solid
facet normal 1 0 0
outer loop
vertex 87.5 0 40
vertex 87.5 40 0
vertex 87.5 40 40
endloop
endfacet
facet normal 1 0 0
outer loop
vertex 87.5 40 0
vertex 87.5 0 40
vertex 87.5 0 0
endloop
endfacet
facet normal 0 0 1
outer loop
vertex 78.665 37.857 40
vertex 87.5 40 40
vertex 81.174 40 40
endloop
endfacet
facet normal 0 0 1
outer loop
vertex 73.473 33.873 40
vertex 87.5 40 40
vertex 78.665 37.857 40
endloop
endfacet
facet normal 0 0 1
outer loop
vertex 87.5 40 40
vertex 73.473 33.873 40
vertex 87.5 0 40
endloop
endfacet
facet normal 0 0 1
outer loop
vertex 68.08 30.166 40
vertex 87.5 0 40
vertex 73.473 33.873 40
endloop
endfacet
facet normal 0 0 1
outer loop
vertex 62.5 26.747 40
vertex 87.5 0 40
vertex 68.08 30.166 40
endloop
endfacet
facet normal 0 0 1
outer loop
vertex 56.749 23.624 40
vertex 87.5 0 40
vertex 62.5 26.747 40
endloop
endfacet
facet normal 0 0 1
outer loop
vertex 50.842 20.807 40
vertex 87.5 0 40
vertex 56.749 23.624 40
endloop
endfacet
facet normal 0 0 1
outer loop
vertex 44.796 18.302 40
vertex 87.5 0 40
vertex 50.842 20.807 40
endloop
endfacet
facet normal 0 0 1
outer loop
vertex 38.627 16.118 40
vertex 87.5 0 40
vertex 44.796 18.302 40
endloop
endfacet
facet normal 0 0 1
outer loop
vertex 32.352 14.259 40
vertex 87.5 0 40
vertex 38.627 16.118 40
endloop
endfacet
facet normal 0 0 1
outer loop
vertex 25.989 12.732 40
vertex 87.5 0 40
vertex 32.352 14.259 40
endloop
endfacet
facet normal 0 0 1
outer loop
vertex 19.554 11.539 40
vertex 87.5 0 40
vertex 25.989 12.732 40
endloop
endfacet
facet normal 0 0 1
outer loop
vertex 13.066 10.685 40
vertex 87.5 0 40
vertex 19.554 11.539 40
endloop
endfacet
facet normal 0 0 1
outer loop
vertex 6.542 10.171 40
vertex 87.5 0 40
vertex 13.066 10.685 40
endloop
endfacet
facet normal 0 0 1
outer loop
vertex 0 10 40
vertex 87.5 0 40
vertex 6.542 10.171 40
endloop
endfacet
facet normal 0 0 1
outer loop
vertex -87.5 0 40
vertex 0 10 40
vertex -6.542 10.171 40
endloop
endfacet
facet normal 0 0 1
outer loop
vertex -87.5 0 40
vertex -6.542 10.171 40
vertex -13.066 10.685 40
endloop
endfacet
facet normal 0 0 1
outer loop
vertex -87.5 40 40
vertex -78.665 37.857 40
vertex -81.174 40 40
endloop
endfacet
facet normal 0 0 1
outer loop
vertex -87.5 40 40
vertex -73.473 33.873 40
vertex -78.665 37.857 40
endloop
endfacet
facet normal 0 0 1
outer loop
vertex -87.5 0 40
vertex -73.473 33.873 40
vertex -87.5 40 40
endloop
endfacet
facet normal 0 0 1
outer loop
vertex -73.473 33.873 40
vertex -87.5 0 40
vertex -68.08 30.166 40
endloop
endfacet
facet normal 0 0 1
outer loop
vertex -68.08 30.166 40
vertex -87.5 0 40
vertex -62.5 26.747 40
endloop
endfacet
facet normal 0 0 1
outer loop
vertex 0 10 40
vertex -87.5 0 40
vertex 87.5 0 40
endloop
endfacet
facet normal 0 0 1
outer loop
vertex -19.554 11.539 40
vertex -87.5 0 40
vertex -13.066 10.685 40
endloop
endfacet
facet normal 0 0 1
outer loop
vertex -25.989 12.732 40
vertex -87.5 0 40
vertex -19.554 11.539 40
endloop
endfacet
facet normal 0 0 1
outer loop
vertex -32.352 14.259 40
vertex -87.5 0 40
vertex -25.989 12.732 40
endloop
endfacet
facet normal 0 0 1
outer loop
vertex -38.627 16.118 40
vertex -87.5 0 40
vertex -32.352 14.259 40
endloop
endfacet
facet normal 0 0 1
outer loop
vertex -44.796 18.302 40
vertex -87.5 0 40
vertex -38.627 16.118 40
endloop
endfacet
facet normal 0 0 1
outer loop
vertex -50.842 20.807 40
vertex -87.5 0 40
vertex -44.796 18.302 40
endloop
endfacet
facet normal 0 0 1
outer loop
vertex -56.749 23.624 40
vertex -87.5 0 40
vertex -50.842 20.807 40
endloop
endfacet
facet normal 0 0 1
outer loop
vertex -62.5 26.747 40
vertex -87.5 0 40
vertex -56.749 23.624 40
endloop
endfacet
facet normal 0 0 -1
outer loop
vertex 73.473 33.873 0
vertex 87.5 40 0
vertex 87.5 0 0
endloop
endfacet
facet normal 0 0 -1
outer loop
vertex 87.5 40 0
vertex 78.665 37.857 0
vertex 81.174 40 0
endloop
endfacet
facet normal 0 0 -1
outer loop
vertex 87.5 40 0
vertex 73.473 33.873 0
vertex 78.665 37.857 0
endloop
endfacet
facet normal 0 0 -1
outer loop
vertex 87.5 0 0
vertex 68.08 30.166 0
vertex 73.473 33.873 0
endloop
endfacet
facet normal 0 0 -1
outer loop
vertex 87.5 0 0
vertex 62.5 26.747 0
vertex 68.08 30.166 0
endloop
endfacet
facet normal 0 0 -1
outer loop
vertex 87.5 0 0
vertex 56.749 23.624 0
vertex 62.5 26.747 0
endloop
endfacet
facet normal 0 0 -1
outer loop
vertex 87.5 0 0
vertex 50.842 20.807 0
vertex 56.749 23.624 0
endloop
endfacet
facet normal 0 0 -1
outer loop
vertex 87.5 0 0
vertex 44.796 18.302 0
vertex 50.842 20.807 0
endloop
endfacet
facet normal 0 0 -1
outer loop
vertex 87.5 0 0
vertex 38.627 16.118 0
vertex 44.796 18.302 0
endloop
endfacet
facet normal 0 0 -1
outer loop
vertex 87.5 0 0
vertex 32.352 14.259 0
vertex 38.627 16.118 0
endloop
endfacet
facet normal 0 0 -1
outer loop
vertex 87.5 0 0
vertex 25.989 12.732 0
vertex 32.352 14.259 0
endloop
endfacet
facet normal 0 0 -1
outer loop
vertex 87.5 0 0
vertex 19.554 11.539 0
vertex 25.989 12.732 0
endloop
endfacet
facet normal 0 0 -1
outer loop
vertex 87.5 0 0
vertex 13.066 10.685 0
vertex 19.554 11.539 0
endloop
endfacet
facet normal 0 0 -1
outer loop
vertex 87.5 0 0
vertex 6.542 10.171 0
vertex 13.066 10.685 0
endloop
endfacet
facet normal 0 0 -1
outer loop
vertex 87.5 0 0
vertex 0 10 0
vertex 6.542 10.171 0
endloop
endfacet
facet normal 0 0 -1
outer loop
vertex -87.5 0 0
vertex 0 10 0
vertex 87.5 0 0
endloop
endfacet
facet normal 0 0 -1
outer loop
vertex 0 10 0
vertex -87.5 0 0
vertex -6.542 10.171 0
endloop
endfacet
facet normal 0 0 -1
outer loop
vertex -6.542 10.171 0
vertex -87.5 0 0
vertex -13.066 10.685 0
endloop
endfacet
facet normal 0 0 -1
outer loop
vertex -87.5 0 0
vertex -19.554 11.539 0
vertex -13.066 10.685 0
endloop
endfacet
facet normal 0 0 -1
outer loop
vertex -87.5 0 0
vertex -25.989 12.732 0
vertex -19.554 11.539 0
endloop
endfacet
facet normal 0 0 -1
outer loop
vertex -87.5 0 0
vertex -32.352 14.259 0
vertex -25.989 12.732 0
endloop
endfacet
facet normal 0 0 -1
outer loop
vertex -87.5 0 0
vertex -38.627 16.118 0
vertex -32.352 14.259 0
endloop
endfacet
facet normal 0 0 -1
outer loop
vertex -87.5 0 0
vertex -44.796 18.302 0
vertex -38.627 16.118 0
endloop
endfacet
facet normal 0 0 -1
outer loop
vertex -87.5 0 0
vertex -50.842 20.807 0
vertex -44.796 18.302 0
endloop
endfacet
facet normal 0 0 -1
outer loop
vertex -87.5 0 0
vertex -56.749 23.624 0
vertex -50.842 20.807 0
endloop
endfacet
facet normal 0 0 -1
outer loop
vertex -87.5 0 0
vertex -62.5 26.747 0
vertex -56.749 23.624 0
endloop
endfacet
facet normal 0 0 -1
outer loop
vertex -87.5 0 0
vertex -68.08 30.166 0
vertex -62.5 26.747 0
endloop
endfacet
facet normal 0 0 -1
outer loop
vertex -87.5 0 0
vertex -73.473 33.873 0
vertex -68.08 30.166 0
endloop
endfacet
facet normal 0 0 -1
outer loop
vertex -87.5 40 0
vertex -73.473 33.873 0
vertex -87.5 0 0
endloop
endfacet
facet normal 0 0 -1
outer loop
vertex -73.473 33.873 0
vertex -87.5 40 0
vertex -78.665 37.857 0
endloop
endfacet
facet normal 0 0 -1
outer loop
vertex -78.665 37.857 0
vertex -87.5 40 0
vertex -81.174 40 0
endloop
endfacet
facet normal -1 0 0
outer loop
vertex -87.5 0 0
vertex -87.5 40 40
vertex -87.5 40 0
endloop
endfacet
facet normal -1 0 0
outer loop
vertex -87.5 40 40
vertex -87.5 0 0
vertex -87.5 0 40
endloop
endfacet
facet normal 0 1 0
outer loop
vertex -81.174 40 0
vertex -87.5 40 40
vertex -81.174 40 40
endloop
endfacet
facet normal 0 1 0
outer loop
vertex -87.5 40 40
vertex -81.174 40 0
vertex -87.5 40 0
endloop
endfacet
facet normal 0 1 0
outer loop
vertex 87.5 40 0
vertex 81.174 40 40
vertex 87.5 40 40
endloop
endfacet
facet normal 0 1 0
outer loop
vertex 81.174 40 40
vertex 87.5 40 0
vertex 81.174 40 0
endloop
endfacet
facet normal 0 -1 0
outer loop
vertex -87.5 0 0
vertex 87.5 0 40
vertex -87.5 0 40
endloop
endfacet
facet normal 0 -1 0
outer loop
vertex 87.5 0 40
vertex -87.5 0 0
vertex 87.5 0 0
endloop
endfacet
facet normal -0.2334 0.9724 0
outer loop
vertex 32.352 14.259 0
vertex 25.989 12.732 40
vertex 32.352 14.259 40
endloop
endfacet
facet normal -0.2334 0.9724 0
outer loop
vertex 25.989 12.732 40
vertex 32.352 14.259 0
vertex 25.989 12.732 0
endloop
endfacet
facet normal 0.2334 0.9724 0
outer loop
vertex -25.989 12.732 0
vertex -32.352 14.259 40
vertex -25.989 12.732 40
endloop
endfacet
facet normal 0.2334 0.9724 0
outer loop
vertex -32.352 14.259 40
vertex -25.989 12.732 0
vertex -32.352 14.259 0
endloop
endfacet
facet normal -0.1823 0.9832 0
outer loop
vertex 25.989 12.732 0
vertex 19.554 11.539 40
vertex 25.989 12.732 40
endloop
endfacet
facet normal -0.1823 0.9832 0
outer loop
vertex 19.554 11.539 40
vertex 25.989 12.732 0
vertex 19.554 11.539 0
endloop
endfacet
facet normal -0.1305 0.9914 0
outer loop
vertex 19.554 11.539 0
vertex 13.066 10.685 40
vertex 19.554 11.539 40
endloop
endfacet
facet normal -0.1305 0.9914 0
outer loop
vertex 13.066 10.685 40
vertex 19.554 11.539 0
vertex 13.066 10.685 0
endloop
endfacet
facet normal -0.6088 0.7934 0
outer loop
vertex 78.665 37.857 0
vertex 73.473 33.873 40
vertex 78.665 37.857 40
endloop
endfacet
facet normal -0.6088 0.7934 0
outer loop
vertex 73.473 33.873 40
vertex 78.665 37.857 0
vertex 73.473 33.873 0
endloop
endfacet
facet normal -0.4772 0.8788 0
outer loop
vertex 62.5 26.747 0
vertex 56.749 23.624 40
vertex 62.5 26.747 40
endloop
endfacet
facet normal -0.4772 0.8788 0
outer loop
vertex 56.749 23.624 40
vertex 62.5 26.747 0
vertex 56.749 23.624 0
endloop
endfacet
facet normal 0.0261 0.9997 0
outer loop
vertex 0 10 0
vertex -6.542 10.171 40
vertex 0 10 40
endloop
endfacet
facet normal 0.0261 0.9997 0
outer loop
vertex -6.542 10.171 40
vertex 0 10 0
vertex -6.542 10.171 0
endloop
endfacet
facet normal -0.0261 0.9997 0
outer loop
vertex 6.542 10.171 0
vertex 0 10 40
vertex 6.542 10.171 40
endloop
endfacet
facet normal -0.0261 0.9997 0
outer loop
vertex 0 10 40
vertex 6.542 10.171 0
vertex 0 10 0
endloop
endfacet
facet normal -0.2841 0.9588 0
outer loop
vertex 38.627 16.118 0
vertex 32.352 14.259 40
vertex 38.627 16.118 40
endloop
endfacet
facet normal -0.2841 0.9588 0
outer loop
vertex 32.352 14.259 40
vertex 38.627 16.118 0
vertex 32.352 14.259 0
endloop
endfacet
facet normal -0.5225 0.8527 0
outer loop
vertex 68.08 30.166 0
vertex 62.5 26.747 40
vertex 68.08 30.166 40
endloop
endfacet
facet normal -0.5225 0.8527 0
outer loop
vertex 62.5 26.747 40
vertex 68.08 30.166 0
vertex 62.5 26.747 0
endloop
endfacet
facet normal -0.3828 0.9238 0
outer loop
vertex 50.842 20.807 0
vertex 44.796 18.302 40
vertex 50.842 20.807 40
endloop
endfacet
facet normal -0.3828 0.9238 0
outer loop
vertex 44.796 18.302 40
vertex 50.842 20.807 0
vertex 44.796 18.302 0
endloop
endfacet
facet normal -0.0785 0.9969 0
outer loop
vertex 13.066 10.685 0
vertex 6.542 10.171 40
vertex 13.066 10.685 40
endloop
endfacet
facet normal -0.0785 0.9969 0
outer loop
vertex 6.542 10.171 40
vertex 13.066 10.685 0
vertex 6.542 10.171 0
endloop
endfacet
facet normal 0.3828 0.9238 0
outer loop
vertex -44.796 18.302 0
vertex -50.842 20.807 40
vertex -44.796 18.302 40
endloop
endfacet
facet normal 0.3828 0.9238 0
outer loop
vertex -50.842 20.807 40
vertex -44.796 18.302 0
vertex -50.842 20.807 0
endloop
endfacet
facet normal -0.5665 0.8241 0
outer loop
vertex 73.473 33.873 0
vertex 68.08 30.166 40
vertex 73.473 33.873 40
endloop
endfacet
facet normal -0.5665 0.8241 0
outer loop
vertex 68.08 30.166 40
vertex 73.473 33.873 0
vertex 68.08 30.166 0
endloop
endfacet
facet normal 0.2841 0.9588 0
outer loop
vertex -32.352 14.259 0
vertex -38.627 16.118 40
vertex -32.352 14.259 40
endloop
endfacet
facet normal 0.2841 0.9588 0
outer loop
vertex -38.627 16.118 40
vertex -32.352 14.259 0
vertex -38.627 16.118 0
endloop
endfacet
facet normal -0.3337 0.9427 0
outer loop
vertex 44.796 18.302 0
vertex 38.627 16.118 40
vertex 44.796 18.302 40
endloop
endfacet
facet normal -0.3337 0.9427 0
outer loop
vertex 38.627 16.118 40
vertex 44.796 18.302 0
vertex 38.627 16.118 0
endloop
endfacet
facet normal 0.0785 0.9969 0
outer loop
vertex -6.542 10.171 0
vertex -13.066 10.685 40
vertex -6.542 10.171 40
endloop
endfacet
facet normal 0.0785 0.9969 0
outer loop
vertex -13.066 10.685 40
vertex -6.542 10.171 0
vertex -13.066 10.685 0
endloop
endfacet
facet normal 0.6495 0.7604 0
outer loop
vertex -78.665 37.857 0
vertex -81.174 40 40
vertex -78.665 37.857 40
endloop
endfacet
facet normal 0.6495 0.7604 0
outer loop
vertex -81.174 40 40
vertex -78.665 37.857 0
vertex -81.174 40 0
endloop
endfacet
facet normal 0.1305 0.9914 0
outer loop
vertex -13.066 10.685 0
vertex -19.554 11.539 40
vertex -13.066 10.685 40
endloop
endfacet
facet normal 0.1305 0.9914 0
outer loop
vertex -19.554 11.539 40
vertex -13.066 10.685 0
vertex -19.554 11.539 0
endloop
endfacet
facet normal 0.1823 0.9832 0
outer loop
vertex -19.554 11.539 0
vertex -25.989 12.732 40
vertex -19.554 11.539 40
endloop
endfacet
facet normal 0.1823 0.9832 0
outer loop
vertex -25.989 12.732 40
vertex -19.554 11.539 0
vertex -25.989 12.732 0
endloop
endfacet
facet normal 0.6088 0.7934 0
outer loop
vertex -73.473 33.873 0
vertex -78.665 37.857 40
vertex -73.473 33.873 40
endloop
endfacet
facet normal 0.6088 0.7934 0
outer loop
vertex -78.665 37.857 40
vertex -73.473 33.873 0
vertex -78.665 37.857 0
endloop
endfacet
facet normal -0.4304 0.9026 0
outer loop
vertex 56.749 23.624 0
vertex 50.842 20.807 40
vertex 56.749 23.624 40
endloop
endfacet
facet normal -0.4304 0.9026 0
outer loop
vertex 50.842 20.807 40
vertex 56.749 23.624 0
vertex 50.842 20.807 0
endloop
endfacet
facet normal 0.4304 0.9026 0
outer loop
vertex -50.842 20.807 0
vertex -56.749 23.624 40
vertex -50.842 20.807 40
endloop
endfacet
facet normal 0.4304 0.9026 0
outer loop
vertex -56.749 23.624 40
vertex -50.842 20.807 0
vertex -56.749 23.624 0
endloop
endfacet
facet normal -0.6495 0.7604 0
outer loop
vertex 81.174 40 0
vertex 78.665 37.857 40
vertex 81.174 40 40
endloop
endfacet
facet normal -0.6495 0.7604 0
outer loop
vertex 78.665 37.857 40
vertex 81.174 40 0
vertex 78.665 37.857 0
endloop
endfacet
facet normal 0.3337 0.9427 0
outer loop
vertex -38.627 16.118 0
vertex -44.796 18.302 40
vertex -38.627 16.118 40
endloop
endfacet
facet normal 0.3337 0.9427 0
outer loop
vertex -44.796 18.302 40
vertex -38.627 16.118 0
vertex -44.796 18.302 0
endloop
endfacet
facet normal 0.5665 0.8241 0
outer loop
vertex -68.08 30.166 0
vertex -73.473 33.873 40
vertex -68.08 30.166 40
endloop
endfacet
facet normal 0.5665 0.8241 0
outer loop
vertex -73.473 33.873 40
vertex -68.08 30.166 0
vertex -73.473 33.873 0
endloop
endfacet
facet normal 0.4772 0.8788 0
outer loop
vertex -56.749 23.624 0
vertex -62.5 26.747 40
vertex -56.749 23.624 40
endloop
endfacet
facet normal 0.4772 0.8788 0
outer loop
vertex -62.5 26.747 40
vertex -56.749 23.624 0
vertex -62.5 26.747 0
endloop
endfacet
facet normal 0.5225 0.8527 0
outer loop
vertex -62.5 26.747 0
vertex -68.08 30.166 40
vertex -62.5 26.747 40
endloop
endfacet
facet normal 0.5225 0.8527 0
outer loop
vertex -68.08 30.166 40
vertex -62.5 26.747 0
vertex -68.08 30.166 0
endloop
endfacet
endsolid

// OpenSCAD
$fn=120;

DELTA=0.01;

module down(x)
{
     translate([0,0,-x])children();
}

module pedestal()
{
     R=125;
     PED_HEIGHT_HOLE=10;
     PED_THICK=40;
     PED_HEIGHT=40;
     PED_WIDTH = 2*R*0.7;
     difference() {
          translate([-PED_WIDTH/2,0,0])cube([PED_WIDTH,PED_HEIGHT,PED_THICK]);
          translate([0,R+PED_HEIGHT_HOLE,-DELTA]) cylinder(r=R,h=PED_THICK+2*DELTA);
     }
}

pedestal();
